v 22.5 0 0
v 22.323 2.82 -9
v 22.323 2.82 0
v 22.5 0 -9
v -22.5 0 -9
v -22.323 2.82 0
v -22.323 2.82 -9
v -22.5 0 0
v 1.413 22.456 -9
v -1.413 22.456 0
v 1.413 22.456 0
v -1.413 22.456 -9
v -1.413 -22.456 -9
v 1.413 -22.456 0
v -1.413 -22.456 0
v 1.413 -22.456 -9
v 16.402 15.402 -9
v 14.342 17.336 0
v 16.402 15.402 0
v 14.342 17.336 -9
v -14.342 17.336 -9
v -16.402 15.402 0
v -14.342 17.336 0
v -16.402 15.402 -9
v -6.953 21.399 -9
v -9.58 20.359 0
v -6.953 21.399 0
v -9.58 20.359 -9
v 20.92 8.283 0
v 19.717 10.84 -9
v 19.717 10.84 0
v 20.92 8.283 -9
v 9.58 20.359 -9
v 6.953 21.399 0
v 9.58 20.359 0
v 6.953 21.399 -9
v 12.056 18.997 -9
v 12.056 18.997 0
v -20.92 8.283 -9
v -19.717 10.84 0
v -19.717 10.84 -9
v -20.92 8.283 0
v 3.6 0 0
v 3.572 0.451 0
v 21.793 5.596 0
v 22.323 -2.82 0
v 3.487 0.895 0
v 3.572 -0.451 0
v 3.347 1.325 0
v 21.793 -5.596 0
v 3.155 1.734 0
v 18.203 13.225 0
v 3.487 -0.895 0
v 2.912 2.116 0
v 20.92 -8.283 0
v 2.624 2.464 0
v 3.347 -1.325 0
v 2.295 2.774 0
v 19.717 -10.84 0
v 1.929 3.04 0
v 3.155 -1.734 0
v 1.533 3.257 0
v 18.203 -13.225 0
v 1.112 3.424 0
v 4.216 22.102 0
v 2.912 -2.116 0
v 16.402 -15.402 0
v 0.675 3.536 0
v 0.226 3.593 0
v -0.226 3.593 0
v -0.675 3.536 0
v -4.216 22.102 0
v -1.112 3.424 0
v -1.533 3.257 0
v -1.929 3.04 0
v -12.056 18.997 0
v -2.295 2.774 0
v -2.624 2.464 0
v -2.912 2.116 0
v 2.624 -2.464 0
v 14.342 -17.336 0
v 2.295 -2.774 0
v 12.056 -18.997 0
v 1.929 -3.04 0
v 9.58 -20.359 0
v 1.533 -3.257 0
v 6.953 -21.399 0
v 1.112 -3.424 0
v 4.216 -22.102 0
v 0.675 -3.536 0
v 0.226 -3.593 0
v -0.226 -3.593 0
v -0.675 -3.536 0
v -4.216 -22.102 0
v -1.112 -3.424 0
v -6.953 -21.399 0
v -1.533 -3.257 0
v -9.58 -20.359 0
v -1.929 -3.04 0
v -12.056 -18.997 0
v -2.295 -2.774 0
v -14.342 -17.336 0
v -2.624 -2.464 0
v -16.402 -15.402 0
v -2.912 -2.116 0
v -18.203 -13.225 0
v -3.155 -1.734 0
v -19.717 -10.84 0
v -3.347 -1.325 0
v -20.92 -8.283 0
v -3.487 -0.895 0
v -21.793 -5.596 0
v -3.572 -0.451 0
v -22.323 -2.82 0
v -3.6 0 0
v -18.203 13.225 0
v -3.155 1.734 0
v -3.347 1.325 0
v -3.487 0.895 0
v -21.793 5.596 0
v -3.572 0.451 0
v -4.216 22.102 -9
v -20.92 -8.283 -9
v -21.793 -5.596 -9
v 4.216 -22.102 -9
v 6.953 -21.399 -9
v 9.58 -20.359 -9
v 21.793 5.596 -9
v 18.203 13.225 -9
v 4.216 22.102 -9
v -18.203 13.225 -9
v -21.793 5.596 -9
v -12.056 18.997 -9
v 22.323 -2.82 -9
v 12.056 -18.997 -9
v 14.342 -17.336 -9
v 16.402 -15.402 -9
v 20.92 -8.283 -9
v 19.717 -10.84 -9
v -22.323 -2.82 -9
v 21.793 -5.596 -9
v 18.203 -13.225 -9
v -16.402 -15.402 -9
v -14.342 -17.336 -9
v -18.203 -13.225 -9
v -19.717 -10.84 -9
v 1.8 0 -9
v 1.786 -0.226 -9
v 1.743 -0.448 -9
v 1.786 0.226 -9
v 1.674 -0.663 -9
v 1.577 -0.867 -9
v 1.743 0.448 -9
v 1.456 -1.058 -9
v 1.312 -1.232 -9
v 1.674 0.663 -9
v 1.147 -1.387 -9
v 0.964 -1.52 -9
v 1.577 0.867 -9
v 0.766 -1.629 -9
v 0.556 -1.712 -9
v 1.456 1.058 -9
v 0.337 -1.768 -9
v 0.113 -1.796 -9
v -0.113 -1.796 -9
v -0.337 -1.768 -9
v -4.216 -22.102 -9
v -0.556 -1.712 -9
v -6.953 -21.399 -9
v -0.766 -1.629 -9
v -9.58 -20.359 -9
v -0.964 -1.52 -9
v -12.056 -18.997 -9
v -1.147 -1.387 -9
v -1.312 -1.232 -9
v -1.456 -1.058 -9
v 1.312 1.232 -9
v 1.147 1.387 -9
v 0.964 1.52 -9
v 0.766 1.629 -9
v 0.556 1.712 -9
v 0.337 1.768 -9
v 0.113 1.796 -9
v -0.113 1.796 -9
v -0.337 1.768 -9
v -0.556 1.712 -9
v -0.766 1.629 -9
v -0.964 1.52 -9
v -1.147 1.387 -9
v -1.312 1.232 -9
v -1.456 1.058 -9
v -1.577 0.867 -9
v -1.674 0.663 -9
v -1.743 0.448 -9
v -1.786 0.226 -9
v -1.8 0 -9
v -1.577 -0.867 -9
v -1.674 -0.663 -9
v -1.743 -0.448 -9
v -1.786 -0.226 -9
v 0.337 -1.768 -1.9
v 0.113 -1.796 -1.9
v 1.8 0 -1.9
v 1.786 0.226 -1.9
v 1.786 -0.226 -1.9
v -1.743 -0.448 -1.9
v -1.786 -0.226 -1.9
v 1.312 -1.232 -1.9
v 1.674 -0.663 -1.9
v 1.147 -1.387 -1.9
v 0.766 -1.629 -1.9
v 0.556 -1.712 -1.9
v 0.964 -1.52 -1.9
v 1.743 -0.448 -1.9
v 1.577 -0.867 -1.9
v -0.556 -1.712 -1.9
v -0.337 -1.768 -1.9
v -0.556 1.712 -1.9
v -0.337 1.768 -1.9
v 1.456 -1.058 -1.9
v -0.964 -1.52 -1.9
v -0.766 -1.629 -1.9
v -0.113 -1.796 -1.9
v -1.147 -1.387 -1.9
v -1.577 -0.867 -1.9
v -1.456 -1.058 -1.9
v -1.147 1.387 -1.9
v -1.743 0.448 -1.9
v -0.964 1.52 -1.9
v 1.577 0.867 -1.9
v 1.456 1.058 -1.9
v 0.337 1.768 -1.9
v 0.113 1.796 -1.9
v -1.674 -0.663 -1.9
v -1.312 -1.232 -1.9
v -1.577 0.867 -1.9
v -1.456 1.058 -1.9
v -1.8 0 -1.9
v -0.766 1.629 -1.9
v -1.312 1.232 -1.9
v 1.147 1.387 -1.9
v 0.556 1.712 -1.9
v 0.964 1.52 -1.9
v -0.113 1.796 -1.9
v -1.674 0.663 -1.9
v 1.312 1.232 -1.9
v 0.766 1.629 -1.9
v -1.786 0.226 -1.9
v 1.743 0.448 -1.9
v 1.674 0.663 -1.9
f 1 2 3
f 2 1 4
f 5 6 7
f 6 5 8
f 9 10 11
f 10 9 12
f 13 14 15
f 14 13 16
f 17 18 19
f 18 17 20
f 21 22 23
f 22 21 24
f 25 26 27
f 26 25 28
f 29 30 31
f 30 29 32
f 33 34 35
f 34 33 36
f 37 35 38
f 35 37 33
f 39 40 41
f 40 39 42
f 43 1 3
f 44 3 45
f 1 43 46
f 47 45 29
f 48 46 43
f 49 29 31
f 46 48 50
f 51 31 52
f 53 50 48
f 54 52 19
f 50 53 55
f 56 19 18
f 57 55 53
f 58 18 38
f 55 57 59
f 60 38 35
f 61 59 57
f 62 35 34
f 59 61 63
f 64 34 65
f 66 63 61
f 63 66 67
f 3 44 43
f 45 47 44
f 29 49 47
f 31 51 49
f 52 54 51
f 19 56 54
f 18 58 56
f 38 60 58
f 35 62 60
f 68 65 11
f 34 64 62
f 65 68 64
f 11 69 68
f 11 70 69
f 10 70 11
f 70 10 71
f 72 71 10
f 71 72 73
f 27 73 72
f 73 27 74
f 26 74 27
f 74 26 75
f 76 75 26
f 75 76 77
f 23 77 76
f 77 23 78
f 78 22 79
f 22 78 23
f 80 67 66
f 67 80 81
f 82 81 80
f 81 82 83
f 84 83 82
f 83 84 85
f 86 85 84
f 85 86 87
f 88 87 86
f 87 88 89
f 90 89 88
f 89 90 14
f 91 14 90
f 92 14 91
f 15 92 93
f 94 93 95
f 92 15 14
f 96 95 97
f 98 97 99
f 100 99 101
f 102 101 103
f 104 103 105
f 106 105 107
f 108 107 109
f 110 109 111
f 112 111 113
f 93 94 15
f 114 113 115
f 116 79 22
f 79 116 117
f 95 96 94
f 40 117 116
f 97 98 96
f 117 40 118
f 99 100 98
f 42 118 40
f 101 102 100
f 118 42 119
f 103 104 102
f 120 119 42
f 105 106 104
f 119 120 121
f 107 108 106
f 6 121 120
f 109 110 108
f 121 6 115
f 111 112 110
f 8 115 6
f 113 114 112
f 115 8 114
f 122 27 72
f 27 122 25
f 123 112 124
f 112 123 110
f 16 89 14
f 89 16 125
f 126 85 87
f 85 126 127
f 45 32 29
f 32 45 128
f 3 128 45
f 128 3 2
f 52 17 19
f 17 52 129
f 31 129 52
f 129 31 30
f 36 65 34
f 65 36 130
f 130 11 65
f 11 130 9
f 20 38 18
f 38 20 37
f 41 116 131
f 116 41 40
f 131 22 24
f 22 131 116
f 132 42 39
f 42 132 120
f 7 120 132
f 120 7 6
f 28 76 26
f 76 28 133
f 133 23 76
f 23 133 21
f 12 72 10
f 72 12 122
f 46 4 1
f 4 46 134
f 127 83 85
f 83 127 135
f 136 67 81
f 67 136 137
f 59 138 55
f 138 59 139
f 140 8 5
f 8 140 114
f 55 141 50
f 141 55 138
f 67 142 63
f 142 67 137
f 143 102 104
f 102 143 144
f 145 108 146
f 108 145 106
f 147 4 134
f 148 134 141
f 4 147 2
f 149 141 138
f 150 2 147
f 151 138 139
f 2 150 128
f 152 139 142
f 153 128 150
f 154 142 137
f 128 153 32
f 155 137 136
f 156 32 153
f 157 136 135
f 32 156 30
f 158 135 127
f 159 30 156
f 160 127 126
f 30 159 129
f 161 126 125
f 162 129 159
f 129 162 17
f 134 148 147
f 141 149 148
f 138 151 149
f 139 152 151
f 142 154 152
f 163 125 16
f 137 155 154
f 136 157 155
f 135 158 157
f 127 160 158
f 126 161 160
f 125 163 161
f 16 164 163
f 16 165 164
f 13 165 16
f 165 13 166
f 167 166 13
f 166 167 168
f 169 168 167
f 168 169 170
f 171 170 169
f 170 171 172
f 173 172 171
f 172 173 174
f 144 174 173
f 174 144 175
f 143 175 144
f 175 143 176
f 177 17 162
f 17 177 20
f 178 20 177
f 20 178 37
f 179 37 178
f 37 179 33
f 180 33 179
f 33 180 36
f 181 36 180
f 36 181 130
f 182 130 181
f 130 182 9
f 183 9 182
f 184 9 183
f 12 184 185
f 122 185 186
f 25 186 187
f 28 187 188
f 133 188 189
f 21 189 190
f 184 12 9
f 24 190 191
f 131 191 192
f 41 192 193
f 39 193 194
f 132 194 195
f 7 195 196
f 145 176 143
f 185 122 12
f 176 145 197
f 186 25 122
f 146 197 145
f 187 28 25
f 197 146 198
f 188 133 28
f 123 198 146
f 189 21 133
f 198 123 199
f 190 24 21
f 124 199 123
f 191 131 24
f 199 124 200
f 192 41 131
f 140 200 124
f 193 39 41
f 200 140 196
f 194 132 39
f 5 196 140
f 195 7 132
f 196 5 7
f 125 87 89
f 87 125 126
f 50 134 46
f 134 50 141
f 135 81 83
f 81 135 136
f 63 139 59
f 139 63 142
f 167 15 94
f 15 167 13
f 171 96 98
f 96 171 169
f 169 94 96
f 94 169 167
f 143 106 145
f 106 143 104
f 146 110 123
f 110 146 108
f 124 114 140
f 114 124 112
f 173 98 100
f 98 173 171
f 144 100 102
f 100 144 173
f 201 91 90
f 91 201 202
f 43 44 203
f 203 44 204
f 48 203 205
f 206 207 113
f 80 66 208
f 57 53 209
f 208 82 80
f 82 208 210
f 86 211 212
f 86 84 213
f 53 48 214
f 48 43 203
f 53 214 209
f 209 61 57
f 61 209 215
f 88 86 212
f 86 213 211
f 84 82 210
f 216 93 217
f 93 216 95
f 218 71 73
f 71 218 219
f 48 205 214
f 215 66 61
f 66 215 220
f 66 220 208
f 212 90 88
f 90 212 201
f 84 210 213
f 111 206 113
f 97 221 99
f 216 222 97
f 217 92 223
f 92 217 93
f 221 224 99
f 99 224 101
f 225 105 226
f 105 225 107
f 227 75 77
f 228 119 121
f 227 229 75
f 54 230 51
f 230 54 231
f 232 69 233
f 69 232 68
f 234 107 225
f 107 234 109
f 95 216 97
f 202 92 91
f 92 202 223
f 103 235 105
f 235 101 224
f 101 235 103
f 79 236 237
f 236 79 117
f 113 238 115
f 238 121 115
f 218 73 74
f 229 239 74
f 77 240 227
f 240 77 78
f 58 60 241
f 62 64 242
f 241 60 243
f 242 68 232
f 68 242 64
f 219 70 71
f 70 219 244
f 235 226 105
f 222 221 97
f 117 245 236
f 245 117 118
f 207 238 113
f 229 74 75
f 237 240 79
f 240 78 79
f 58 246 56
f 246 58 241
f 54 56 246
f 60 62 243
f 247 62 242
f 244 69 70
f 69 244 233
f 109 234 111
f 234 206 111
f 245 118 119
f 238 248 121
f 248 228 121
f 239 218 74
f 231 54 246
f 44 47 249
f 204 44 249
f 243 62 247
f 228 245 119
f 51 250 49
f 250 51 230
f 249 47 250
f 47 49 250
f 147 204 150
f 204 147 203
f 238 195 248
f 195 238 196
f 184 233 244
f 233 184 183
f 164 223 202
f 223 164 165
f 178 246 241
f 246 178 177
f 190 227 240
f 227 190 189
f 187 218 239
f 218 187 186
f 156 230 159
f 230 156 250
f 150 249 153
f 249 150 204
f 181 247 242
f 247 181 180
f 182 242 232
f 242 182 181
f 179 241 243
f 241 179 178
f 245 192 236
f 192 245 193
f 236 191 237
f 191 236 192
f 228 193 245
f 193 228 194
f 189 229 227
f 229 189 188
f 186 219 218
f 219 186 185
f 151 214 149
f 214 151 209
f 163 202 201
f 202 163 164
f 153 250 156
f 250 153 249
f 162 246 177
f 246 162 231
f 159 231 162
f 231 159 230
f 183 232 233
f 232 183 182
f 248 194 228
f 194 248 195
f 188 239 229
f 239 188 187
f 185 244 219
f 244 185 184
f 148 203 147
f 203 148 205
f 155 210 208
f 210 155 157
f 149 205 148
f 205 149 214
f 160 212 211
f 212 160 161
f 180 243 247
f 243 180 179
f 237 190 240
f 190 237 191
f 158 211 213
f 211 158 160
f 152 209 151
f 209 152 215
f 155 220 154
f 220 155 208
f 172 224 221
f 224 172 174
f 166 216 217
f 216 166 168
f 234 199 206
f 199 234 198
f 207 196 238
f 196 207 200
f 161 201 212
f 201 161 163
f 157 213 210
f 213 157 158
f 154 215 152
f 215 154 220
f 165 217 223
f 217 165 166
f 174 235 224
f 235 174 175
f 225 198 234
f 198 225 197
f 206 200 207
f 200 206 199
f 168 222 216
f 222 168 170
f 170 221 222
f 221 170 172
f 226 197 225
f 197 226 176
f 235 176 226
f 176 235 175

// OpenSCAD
$fn = 50;


difference() {
	union() {
		translate(v = [0, 0, -9.0000000000]) {
			cylinder(h = 9, r = 22.5000000000);
		}
		translate(v = [0, 0, -9.0000000000]) {
			cylinder(h = 9, r = 2.8750000000);
		}
	}
	union() {
		translate(v = [0, 0, 0]) {
			rotate(a = [0, 0, 0]) {
				difference() {
					union() {
						translate(v = [0, 0, -9.0000000000]) {
							cylinder(h = 9, r = 1.5000000000);
						}
						translate(v = [0, 0, -1.9000000000]) {
							cylinder(h = 1.9000000000, r1 = 1.8000000000, r2 = 3.6000000000);
						}
						translate(v = [0, 0, -9.0000000000]) {
							cylinder(h = 9, r = 1.8000000000);
						}
						translate(v = [0, 0, -9.0000000000]) {
							cylinder(h = 9, r = 1.5000000000);
						}
					}
					union();
				}
			}
		}
	}
}
